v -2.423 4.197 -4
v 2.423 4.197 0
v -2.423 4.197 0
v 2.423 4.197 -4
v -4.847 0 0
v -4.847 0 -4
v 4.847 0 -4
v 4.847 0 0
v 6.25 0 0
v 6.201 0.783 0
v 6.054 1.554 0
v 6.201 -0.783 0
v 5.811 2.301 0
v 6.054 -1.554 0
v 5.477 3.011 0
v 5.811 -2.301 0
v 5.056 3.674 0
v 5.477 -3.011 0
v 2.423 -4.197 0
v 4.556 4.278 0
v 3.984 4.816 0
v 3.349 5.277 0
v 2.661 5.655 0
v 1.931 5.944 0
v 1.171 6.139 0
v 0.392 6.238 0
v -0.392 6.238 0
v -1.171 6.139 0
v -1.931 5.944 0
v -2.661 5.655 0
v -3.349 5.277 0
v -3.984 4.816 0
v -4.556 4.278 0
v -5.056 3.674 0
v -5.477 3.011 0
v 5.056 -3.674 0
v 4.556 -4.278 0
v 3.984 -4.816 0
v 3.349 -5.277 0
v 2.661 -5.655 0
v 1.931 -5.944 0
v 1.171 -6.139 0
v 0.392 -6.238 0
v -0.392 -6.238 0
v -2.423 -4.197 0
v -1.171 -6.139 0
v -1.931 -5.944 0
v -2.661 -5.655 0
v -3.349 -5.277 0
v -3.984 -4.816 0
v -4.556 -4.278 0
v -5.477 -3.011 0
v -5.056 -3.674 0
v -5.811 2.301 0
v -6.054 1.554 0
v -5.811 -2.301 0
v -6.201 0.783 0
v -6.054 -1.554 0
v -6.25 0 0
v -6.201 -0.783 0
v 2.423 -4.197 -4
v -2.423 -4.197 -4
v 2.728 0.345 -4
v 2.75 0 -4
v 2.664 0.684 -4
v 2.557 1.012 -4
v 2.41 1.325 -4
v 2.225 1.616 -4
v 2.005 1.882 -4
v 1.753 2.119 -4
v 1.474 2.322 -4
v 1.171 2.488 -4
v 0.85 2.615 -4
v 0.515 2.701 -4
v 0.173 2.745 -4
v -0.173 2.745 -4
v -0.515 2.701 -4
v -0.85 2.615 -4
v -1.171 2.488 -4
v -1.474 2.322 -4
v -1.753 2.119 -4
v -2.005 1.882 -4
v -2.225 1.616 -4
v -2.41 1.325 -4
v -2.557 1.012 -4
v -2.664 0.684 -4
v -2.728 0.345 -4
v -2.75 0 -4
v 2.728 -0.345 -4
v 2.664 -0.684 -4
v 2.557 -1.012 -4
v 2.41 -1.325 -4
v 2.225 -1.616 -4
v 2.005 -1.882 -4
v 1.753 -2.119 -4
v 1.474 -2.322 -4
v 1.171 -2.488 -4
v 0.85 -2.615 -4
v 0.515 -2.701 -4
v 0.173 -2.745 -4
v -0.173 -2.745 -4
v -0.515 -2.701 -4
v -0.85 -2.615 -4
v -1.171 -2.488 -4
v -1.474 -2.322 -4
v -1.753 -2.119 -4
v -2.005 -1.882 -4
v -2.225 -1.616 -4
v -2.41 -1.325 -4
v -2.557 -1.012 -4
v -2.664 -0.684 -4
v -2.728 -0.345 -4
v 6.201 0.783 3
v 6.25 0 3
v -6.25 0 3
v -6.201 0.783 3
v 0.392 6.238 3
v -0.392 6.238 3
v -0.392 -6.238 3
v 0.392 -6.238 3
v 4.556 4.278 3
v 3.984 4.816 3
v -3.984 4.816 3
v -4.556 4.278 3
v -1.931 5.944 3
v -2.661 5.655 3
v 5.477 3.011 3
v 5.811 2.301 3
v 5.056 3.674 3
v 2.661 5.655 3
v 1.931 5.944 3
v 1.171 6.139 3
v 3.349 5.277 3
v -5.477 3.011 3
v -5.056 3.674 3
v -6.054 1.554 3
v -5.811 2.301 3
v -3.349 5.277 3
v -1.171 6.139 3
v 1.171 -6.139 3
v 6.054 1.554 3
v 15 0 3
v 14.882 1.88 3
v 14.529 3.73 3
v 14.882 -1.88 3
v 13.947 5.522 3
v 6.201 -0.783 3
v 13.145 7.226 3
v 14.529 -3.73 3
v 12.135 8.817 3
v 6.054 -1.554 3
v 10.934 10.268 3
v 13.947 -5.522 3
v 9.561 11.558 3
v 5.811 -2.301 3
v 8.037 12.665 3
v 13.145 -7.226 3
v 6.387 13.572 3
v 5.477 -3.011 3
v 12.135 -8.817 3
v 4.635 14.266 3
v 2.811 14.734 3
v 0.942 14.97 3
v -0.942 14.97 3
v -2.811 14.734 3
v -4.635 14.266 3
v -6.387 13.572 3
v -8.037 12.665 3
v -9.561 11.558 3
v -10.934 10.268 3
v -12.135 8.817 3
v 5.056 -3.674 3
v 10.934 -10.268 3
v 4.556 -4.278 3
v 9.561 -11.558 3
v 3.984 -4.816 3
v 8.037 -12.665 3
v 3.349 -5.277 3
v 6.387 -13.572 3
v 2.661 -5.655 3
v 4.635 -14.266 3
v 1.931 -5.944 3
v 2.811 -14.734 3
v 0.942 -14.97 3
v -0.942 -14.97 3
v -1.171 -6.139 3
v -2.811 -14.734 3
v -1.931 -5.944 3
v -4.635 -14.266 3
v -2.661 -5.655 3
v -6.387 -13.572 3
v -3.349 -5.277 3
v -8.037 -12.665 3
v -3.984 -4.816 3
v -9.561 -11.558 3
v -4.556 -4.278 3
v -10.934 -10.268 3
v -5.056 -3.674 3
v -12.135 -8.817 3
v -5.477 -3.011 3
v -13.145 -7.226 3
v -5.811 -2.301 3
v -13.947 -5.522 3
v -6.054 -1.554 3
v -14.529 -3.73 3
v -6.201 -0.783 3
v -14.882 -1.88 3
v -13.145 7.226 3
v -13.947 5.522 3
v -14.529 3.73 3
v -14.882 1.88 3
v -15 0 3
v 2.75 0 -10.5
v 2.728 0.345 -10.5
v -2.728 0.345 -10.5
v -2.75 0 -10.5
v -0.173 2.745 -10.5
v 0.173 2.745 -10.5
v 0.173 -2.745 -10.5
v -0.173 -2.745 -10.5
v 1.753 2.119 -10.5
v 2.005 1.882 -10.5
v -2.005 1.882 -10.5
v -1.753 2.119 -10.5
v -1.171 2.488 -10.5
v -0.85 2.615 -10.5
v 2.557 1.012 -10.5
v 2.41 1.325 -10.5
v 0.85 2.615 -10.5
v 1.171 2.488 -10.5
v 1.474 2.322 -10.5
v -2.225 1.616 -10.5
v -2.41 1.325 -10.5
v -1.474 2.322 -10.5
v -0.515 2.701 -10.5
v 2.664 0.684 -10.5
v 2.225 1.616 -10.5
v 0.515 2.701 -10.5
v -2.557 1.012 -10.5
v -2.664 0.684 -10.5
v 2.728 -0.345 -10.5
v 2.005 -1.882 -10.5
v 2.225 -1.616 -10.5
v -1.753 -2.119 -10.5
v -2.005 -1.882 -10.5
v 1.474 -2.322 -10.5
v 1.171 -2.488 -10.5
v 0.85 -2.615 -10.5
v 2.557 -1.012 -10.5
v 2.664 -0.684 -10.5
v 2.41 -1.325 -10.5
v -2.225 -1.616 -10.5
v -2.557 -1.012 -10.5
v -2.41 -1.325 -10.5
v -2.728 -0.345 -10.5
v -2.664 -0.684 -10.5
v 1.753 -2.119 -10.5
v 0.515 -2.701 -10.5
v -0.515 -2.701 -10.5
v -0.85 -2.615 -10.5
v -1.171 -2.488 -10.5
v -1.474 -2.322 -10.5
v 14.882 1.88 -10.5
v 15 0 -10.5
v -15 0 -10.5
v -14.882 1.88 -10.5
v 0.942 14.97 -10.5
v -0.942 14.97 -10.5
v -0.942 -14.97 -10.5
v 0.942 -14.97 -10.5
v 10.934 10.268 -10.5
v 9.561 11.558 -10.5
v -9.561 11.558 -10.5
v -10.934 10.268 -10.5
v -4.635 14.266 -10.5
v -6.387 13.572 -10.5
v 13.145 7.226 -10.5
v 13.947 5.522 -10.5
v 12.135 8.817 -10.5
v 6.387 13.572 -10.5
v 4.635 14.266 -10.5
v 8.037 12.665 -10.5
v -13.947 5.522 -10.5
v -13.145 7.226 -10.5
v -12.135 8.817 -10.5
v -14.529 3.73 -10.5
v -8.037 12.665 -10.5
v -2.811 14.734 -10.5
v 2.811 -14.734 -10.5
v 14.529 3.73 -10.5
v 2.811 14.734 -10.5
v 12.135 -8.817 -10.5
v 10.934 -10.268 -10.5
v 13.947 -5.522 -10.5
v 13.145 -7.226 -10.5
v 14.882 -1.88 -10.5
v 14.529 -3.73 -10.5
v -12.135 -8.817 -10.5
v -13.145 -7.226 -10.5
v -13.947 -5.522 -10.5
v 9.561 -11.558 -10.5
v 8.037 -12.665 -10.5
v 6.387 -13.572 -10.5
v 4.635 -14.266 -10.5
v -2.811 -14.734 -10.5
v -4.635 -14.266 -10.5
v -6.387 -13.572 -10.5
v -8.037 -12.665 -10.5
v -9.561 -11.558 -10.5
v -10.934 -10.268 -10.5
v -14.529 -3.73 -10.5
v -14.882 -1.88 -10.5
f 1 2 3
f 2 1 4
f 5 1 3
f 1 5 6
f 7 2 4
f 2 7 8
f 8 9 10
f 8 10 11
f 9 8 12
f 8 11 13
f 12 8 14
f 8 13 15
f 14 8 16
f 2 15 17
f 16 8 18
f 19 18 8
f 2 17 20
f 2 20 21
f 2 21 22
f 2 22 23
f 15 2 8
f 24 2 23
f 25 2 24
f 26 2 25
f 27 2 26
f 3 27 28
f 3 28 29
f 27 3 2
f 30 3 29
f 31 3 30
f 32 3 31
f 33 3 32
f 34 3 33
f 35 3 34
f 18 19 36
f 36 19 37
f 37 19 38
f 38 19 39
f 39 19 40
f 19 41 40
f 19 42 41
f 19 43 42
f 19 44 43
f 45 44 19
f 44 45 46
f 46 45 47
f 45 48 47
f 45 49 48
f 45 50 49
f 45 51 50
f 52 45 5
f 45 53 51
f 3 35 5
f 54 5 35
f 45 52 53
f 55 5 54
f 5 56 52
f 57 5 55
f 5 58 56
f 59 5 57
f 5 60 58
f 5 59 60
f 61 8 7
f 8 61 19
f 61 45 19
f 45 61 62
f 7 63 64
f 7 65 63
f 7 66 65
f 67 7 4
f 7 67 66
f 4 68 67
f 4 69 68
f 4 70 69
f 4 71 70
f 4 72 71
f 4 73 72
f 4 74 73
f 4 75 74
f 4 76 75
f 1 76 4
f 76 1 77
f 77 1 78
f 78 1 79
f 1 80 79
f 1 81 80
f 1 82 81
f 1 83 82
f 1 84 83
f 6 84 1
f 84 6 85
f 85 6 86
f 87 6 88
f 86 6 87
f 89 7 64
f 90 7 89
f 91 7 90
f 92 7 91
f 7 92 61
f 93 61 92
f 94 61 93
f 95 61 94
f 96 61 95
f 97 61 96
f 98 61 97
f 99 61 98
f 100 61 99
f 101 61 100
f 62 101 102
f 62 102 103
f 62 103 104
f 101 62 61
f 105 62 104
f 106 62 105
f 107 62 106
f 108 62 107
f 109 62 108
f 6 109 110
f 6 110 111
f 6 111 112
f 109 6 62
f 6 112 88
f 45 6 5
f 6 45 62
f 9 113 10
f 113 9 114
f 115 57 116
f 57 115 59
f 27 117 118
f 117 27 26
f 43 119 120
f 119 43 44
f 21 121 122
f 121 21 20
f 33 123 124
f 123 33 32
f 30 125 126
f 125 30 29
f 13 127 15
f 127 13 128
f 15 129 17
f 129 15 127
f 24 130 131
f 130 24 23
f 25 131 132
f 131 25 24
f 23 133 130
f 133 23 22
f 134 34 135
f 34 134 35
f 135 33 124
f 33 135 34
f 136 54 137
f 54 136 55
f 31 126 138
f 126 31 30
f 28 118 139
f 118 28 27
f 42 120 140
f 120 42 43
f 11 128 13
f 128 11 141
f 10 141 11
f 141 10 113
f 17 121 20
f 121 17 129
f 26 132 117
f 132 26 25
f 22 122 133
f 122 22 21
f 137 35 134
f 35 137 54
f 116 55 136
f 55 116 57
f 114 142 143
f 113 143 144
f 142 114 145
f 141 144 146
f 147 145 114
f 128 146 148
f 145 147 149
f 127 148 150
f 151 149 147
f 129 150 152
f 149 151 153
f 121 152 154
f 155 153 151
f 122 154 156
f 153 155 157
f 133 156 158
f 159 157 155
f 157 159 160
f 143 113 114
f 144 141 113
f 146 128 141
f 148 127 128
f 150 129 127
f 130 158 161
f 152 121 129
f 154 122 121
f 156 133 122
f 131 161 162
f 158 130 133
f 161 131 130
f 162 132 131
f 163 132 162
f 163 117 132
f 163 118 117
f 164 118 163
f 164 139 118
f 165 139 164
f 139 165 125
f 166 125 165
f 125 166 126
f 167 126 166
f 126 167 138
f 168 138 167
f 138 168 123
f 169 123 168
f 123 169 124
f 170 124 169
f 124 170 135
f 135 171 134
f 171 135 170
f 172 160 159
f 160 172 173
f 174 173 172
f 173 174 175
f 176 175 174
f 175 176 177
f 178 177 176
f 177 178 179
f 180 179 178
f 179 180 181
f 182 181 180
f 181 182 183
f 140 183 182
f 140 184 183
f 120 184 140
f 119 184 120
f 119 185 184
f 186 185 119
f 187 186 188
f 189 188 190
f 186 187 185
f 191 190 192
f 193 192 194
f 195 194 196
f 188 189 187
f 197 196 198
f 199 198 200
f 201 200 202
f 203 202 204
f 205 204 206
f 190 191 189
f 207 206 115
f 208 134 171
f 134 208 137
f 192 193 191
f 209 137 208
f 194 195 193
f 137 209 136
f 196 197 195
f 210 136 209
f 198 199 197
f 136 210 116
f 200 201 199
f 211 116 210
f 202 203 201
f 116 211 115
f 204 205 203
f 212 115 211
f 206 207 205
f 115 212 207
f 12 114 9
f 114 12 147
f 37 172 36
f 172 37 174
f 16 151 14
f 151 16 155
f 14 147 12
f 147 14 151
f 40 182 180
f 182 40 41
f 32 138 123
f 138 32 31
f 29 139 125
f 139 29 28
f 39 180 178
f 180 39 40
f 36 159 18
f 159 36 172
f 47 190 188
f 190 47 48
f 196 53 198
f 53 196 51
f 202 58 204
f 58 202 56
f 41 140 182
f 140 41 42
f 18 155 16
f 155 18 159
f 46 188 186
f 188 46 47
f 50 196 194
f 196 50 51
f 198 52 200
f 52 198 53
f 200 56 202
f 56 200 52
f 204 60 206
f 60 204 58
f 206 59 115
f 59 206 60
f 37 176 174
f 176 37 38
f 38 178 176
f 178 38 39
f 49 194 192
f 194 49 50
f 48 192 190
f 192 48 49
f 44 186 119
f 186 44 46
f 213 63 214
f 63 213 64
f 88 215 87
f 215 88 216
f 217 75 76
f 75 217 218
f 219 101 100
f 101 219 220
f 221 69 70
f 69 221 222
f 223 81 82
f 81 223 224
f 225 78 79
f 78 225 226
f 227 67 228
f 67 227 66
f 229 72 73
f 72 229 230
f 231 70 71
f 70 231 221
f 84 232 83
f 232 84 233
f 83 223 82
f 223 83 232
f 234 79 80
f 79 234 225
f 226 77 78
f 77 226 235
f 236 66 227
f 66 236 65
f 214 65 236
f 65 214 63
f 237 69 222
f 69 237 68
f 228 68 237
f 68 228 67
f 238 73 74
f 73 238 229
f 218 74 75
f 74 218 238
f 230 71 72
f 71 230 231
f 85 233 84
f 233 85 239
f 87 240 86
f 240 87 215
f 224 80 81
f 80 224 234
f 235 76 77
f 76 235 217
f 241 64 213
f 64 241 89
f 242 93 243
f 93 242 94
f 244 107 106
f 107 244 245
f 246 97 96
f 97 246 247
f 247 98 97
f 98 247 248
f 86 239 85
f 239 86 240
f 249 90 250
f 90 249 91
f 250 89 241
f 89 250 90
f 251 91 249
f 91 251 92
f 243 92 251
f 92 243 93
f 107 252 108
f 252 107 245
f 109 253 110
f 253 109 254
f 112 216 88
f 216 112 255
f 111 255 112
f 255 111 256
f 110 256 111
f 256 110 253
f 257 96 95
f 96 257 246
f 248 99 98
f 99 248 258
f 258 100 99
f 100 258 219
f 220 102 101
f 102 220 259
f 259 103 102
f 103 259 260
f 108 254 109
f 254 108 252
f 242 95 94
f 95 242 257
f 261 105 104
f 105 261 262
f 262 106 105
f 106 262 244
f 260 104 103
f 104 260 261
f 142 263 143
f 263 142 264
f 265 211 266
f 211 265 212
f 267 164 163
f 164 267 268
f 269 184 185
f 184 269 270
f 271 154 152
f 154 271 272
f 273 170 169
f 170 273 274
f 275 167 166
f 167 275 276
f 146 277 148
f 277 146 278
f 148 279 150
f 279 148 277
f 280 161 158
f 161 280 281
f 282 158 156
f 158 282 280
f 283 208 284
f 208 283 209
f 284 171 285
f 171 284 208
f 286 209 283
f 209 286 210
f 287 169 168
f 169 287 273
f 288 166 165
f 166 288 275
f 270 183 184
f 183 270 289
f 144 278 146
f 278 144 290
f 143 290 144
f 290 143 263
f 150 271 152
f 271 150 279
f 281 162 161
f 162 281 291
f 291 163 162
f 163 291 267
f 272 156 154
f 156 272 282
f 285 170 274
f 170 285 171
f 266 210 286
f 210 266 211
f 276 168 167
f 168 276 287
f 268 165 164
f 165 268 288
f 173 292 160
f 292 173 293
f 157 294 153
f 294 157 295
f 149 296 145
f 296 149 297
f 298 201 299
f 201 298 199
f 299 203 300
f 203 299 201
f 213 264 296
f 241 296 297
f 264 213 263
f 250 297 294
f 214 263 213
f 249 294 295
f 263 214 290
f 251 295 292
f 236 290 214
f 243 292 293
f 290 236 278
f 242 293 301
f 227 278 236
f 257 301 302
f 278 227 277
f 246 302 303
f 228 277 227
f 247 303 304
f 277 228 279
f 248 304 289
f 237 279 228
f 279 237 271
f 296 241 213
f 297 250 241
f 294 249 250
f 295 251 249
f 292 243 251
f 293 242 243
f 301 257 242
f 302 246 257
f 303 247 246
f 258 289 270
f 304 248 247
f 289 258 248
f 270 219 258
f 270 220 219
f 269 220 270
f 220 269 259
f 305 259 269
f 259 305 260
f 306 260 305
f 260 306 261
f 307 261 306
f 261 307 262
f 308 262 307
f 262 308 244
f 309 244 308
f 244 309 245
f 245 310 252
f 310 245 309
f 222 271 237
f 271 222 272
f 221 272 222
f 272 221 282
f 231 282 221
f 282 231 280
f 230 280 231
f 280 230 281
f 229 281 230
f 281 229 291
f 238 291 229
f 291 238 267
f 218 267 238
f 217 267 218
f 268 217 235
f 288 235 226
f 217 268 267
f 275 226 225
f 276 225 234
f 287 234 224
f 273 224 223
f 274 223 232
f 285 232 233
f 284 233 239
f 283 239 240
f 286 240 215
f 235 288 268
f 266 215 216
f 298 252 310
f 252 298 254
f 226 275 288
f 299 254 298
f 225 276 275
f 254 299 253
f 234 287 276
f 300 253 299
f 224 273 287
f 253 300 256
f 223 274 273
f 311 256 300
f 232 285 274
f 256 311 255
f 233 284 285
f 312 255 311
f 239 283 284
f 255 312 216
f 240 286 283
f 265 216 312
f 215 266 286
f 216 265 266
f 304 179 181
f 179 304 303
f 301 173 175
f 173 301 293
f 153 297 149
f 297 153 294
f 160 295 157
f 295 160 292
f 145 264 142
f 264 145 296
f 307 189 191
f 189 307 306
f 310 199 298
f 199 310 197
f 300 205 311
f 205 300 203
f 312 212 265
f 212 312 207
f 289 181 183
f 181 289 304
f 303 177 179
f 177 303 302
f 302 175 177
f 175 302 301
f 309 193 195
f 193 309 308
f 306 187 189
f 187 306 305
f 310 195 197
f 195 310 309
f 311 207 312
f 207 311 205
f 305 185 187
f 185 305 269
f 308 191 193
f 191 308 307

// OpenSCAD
$fn = 50;


difference() {
	union() {
		translate(v = [0, 0, -10.5000000000]) {
			cylinder(h = 13.5000000000, r = 15.0000000000);
		}
	}
	union() {
		translate(v = [0, 0, 0]) {
			rotate(a = [0, 0, 0]) {
				difference() {
					union() {
						translate(v = [0, 0, -4]) {
							linear_extrude(height = 4) {
								polygon(points = [[4.8468000000, 0.0000000000], [2.4234000000, 4.1974519271], [-2.4234000000, 4.1974519271], [-4.8468000000, 0.0000000000], [-2.4234000000, -4.1974519271], [2.4234000000, -4.1974519271]]);
							}
						}
					}
					union();
				}
			}
		}
		#cylinder(h = 3, r = 6.2500000000);
		#translate(v = [0, 0, -100.0000000000]) {
			cylinder(h = 200, r = 2.7500000000);
		}
	}
}
